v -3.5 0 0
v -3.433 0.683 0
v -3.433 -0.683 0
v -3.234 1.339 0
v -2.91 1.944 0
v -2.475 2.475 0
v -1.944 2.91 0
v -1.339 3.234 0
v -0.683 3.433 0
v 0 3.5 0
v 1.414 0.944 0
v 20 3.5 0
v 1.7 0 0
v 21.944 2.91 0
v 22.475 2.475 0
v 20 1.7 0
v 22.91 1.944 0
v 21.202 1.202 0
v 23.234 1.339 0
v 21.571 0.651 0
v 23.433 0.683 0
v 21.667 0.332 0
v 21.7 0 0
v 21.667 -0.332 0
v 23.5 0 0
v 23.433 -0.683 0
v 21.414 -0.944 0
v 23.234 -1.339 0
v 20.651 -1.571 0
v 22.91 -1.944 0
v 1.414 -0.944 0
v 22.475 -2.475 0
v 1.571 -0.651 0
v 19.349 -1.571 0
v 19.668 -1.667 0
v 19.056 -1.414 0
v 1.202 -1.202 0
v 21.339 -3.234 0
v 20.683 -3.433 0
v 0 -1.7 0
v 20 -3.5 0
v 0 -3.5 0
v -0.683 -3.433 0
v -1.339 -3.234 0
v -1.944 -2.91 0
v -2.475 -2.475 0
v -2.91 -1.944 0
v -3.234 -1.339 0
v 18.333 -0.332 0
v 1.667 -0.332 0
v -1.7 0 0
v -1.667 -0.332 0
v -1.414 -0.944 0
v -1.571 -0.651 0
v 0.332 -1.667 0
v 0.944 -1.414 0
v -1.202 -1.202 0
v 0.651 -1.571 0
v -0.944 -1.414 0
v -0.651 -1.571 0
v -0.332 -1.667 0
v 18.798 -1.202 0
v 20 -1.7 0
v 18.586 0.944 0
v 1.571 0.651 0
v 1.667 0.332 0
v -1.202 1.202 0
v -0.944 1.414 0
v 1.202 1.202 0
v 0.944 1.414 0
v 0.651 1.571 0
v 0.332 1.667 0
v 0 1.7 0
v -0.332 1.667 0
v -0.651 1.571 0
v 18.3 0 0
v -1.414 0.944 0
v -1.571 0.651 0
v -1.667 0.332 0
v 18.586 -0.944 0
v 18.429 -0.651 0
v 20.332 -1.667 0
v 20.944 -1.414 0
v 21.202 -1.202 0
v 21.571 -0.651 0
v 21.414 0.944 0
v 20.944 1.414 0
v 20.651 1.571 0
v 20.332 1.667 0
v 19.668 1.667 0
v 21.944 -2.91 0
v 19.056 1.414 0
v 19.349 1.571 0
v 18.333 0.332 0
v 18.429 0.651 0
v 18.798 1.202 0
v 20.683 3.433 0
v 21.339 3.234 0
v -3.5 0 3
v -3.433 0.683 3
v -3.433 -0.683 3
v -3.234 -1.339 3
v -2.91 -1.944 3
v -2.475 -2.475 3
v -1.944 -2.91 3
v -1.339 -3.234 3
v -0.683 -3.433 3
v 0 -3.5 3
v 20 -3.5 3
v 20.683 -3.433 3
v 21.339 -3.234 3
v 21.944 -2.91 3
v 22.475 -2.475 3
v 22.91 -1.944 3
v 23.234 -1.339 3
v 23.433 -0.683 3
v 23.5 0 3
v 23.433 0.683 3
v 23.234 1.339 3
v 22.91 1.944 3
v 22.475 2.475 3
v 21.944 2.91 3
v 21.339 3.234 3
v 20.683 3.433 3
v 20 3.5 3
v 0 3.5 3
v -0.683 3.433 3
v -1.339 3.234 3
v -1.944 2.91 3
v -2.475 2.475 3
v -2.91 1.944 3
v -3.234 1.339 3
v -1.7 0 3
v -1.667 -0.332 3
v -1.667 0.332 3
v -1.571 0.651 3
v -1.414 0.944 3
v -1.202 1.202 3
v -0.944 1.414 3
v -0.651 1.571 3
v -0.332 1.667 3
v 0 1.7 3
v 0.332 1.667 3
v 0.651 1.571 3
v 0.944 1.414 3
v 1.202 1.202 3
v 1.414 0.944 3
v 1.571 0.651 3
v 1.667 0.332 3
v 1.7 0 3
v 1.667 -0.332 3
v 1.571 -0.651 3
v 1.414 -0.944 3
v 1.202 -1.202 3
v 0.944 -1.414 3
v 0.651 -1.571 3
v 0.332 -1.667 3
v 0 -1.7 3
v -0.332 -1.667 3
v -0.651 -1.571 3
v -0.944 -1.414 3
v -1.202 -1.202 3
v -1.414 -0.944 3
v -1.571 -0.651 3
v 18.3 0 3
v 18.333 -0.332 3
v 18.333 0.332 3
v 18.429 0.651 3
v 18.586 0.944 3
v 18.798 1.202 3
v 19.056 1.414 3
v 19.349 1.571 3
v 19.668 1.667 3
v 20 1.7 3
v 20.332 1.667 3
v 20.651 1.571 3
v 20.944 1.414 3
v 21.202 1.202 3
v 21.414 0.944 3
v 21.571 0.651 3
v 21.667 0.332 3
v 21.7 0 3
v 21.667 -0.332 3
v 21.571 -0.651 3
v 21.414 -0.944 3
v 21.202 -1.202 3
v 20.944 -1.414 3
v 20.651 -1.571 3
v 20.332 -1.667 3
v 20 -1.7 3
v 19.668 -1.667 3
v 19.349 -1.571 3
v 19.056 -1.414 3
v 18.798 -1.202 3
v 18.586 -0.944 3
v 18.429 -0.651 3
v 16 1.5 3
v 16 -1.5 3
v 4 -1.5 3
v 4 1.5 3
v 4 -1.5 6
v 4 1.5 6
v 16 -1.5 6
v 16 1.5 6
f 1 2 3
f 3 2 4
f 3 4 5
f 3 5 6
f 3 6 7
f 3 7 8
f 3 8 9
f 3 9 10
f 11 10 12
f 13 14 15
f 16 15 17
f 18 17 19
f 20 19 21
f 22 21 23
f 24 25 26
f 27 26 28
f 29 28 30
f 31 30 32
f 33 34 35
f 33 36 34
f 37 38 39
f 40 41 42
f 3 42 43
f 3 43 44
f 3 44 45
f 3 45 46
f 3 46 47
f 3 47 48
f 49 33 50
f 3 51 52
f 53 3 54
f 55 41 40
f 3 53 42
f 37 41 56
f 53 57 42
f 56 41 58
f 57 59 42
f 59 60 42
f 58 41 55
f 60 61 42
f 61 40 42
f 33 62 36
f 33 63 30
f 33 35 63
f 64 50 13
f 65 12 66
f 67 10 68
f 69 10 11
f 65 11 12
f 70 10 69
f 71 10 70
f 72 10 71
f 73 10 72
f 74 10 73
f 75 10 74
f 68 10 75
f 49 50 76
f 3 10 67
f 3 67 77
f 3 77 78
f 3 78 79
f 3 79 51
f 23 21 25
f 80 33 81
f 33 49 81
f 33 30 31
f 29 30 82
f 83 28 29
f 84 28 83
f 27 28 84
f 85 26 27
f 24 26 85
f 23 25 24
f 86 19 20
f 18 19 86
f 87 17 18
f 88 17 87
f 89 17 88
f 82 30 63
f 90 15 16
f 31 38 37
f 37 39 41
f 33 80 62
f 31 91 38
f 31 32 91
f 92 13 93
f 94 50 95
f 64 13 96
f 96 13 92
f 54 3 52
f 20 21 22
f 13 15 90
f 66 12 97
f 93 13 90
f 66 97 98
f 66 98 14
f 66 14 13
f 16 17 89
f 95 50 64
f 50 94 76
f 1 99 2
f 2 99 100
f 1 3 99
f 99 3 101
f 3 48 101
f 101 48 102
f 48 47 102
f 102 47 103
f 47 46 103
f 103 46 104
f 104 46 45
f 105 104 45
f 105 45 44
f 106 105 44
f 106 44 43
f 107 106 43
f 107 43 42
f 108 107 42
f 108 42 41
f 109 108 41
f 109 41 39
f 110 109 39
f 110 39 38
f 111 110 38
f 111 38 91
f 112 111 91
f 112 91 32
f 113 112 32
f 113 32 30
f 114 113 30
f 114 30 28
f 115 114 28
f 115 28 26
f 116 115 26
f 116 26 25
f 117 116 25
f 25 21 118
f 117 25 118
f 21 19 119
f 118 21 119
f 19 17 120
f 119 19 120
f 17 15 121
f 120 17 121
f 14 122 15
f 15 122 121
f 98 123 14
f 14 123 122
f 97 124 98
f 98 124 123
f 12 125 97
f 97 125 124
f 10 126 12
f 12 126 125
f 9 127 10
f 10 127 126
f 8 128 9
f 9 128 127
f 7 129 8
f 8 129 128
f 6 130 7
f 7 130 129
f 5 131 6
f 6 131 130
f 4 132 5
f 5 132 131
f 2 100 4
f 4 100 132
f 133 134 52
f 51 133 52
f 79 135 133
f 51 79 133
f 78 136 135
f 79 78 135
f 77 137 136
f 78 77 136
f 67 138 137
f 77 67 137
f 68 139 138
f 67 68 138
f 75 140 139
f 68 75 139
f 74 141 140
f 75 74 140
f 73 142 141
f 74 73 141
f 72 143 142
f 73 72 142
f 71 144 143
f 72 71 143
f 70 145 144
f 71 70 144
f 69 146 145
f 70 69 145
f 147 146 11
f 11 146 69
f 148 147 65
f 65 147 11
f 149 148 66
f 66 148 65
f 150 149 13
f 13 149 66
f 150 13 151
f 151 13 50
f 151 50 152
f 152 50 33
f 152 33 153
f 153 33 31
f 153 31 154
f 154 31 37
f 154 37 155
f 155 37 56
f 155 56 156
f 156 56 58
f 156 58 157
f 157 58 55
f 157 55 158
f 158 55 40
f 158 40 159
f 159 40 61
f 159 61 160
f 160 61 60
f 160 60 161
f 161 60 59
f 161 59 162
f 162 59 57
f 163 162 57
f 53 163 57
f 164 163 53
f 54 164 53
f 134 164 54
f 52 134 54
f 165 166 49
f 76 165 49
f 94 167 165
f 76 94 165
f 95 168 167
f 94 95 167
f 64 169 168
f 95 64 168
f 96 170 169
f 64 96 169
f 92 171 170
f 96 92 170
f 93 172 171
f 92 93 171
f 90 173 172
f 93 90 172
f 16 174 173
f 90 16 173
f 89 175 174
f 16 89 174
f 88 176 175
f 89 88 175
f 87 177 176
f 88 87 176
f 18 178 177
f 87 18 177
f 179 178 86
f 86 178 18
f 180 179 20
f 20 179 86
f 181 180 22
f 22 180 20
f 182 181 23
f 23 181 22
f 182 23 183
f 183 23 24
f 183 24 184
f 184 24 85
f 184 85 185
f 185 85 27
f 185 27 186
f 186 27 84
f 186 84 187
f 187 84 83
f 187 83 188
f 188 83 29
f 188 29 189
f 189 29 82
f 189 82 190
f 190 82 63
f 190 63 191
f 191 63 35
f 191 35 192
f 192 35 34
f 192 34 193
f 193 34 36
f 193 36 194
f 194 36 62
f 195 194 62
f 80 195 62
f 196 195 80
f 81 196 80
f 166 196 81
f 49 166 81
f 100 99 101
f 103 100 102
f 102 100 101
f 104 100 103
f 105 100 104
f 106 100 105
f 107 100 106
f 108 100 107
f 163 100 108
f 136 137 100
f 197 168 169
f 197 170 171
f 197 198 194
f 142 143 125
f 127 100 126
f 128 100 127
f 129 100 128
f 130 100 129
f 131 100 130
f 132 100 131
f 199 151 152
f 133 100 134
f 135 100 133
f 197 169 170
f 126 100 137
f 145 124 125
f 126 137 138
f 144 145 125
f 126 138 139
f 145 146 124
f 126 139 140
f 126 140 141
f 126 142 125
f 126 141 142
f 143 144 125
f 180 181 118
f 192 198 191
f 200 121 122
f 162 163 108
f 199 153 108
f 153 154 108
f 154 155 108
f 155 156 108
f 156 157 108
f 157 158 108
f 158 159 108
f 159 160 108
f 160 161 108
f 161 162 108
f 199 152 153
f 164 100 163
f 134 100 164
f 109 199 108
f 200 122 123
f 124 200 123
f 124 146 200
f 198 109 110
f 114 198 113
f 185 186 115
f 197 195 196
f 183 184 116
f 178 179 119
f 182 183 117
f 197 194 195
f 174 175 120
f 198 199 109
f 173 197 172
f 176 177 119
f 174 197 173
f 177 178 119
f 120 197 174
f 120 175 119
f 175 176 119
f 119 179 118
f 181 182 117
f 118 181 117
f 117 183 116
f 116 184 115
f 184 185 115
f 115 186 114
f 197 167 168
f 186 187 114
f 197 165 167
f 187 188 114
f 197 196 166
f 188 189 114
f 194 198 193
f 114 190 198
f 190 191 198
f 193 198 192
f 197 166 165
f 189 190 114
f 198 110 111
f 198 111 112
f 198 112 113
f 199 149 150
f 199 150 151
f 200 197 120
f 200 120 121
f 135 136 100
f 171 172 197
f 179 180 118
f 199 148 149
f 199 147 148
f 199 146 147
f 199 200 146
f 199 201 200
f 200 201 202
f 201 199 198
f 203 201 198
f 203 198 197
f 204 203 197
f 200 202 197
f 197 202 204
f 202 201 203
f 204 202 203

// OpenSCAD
//-- arm1.scad by AndrewBCN - November 2014
//-- remix of thing #154834
//-- replaces Brazo.stl with slightly stronger part
//-- and with source file.
//-- GPL V3

arm_th=3;
arm_len=20;
arm_wi=7;
$fn=32;

//-- above are exactly same dimensions as original

difference() {
  // arm
  union() {
    translate([arm_len/2,0,arm_th/2]) cube([arm_len,arm_wi,arm_th], center=true);
    translate([arm_len/2,0,1.5*arm_th]) cube([12,arm_th,arm_th], center=true);
    translate([0,0,arm_th/2]) cylinder(r=arm_wi/2, h=arm_th, center=true);
    translate([arm_len,0,arm_th/2]) cylinder(r=arm_wi/2, h=arm_th, center=true);
  }
  // holes
  cylinder(r=3.4/2, h=3*arm_th, center=true);
  translate([arm_len,0,0]) cylinder(r=3.4/2, h=3*arm_th, center=true);
}
